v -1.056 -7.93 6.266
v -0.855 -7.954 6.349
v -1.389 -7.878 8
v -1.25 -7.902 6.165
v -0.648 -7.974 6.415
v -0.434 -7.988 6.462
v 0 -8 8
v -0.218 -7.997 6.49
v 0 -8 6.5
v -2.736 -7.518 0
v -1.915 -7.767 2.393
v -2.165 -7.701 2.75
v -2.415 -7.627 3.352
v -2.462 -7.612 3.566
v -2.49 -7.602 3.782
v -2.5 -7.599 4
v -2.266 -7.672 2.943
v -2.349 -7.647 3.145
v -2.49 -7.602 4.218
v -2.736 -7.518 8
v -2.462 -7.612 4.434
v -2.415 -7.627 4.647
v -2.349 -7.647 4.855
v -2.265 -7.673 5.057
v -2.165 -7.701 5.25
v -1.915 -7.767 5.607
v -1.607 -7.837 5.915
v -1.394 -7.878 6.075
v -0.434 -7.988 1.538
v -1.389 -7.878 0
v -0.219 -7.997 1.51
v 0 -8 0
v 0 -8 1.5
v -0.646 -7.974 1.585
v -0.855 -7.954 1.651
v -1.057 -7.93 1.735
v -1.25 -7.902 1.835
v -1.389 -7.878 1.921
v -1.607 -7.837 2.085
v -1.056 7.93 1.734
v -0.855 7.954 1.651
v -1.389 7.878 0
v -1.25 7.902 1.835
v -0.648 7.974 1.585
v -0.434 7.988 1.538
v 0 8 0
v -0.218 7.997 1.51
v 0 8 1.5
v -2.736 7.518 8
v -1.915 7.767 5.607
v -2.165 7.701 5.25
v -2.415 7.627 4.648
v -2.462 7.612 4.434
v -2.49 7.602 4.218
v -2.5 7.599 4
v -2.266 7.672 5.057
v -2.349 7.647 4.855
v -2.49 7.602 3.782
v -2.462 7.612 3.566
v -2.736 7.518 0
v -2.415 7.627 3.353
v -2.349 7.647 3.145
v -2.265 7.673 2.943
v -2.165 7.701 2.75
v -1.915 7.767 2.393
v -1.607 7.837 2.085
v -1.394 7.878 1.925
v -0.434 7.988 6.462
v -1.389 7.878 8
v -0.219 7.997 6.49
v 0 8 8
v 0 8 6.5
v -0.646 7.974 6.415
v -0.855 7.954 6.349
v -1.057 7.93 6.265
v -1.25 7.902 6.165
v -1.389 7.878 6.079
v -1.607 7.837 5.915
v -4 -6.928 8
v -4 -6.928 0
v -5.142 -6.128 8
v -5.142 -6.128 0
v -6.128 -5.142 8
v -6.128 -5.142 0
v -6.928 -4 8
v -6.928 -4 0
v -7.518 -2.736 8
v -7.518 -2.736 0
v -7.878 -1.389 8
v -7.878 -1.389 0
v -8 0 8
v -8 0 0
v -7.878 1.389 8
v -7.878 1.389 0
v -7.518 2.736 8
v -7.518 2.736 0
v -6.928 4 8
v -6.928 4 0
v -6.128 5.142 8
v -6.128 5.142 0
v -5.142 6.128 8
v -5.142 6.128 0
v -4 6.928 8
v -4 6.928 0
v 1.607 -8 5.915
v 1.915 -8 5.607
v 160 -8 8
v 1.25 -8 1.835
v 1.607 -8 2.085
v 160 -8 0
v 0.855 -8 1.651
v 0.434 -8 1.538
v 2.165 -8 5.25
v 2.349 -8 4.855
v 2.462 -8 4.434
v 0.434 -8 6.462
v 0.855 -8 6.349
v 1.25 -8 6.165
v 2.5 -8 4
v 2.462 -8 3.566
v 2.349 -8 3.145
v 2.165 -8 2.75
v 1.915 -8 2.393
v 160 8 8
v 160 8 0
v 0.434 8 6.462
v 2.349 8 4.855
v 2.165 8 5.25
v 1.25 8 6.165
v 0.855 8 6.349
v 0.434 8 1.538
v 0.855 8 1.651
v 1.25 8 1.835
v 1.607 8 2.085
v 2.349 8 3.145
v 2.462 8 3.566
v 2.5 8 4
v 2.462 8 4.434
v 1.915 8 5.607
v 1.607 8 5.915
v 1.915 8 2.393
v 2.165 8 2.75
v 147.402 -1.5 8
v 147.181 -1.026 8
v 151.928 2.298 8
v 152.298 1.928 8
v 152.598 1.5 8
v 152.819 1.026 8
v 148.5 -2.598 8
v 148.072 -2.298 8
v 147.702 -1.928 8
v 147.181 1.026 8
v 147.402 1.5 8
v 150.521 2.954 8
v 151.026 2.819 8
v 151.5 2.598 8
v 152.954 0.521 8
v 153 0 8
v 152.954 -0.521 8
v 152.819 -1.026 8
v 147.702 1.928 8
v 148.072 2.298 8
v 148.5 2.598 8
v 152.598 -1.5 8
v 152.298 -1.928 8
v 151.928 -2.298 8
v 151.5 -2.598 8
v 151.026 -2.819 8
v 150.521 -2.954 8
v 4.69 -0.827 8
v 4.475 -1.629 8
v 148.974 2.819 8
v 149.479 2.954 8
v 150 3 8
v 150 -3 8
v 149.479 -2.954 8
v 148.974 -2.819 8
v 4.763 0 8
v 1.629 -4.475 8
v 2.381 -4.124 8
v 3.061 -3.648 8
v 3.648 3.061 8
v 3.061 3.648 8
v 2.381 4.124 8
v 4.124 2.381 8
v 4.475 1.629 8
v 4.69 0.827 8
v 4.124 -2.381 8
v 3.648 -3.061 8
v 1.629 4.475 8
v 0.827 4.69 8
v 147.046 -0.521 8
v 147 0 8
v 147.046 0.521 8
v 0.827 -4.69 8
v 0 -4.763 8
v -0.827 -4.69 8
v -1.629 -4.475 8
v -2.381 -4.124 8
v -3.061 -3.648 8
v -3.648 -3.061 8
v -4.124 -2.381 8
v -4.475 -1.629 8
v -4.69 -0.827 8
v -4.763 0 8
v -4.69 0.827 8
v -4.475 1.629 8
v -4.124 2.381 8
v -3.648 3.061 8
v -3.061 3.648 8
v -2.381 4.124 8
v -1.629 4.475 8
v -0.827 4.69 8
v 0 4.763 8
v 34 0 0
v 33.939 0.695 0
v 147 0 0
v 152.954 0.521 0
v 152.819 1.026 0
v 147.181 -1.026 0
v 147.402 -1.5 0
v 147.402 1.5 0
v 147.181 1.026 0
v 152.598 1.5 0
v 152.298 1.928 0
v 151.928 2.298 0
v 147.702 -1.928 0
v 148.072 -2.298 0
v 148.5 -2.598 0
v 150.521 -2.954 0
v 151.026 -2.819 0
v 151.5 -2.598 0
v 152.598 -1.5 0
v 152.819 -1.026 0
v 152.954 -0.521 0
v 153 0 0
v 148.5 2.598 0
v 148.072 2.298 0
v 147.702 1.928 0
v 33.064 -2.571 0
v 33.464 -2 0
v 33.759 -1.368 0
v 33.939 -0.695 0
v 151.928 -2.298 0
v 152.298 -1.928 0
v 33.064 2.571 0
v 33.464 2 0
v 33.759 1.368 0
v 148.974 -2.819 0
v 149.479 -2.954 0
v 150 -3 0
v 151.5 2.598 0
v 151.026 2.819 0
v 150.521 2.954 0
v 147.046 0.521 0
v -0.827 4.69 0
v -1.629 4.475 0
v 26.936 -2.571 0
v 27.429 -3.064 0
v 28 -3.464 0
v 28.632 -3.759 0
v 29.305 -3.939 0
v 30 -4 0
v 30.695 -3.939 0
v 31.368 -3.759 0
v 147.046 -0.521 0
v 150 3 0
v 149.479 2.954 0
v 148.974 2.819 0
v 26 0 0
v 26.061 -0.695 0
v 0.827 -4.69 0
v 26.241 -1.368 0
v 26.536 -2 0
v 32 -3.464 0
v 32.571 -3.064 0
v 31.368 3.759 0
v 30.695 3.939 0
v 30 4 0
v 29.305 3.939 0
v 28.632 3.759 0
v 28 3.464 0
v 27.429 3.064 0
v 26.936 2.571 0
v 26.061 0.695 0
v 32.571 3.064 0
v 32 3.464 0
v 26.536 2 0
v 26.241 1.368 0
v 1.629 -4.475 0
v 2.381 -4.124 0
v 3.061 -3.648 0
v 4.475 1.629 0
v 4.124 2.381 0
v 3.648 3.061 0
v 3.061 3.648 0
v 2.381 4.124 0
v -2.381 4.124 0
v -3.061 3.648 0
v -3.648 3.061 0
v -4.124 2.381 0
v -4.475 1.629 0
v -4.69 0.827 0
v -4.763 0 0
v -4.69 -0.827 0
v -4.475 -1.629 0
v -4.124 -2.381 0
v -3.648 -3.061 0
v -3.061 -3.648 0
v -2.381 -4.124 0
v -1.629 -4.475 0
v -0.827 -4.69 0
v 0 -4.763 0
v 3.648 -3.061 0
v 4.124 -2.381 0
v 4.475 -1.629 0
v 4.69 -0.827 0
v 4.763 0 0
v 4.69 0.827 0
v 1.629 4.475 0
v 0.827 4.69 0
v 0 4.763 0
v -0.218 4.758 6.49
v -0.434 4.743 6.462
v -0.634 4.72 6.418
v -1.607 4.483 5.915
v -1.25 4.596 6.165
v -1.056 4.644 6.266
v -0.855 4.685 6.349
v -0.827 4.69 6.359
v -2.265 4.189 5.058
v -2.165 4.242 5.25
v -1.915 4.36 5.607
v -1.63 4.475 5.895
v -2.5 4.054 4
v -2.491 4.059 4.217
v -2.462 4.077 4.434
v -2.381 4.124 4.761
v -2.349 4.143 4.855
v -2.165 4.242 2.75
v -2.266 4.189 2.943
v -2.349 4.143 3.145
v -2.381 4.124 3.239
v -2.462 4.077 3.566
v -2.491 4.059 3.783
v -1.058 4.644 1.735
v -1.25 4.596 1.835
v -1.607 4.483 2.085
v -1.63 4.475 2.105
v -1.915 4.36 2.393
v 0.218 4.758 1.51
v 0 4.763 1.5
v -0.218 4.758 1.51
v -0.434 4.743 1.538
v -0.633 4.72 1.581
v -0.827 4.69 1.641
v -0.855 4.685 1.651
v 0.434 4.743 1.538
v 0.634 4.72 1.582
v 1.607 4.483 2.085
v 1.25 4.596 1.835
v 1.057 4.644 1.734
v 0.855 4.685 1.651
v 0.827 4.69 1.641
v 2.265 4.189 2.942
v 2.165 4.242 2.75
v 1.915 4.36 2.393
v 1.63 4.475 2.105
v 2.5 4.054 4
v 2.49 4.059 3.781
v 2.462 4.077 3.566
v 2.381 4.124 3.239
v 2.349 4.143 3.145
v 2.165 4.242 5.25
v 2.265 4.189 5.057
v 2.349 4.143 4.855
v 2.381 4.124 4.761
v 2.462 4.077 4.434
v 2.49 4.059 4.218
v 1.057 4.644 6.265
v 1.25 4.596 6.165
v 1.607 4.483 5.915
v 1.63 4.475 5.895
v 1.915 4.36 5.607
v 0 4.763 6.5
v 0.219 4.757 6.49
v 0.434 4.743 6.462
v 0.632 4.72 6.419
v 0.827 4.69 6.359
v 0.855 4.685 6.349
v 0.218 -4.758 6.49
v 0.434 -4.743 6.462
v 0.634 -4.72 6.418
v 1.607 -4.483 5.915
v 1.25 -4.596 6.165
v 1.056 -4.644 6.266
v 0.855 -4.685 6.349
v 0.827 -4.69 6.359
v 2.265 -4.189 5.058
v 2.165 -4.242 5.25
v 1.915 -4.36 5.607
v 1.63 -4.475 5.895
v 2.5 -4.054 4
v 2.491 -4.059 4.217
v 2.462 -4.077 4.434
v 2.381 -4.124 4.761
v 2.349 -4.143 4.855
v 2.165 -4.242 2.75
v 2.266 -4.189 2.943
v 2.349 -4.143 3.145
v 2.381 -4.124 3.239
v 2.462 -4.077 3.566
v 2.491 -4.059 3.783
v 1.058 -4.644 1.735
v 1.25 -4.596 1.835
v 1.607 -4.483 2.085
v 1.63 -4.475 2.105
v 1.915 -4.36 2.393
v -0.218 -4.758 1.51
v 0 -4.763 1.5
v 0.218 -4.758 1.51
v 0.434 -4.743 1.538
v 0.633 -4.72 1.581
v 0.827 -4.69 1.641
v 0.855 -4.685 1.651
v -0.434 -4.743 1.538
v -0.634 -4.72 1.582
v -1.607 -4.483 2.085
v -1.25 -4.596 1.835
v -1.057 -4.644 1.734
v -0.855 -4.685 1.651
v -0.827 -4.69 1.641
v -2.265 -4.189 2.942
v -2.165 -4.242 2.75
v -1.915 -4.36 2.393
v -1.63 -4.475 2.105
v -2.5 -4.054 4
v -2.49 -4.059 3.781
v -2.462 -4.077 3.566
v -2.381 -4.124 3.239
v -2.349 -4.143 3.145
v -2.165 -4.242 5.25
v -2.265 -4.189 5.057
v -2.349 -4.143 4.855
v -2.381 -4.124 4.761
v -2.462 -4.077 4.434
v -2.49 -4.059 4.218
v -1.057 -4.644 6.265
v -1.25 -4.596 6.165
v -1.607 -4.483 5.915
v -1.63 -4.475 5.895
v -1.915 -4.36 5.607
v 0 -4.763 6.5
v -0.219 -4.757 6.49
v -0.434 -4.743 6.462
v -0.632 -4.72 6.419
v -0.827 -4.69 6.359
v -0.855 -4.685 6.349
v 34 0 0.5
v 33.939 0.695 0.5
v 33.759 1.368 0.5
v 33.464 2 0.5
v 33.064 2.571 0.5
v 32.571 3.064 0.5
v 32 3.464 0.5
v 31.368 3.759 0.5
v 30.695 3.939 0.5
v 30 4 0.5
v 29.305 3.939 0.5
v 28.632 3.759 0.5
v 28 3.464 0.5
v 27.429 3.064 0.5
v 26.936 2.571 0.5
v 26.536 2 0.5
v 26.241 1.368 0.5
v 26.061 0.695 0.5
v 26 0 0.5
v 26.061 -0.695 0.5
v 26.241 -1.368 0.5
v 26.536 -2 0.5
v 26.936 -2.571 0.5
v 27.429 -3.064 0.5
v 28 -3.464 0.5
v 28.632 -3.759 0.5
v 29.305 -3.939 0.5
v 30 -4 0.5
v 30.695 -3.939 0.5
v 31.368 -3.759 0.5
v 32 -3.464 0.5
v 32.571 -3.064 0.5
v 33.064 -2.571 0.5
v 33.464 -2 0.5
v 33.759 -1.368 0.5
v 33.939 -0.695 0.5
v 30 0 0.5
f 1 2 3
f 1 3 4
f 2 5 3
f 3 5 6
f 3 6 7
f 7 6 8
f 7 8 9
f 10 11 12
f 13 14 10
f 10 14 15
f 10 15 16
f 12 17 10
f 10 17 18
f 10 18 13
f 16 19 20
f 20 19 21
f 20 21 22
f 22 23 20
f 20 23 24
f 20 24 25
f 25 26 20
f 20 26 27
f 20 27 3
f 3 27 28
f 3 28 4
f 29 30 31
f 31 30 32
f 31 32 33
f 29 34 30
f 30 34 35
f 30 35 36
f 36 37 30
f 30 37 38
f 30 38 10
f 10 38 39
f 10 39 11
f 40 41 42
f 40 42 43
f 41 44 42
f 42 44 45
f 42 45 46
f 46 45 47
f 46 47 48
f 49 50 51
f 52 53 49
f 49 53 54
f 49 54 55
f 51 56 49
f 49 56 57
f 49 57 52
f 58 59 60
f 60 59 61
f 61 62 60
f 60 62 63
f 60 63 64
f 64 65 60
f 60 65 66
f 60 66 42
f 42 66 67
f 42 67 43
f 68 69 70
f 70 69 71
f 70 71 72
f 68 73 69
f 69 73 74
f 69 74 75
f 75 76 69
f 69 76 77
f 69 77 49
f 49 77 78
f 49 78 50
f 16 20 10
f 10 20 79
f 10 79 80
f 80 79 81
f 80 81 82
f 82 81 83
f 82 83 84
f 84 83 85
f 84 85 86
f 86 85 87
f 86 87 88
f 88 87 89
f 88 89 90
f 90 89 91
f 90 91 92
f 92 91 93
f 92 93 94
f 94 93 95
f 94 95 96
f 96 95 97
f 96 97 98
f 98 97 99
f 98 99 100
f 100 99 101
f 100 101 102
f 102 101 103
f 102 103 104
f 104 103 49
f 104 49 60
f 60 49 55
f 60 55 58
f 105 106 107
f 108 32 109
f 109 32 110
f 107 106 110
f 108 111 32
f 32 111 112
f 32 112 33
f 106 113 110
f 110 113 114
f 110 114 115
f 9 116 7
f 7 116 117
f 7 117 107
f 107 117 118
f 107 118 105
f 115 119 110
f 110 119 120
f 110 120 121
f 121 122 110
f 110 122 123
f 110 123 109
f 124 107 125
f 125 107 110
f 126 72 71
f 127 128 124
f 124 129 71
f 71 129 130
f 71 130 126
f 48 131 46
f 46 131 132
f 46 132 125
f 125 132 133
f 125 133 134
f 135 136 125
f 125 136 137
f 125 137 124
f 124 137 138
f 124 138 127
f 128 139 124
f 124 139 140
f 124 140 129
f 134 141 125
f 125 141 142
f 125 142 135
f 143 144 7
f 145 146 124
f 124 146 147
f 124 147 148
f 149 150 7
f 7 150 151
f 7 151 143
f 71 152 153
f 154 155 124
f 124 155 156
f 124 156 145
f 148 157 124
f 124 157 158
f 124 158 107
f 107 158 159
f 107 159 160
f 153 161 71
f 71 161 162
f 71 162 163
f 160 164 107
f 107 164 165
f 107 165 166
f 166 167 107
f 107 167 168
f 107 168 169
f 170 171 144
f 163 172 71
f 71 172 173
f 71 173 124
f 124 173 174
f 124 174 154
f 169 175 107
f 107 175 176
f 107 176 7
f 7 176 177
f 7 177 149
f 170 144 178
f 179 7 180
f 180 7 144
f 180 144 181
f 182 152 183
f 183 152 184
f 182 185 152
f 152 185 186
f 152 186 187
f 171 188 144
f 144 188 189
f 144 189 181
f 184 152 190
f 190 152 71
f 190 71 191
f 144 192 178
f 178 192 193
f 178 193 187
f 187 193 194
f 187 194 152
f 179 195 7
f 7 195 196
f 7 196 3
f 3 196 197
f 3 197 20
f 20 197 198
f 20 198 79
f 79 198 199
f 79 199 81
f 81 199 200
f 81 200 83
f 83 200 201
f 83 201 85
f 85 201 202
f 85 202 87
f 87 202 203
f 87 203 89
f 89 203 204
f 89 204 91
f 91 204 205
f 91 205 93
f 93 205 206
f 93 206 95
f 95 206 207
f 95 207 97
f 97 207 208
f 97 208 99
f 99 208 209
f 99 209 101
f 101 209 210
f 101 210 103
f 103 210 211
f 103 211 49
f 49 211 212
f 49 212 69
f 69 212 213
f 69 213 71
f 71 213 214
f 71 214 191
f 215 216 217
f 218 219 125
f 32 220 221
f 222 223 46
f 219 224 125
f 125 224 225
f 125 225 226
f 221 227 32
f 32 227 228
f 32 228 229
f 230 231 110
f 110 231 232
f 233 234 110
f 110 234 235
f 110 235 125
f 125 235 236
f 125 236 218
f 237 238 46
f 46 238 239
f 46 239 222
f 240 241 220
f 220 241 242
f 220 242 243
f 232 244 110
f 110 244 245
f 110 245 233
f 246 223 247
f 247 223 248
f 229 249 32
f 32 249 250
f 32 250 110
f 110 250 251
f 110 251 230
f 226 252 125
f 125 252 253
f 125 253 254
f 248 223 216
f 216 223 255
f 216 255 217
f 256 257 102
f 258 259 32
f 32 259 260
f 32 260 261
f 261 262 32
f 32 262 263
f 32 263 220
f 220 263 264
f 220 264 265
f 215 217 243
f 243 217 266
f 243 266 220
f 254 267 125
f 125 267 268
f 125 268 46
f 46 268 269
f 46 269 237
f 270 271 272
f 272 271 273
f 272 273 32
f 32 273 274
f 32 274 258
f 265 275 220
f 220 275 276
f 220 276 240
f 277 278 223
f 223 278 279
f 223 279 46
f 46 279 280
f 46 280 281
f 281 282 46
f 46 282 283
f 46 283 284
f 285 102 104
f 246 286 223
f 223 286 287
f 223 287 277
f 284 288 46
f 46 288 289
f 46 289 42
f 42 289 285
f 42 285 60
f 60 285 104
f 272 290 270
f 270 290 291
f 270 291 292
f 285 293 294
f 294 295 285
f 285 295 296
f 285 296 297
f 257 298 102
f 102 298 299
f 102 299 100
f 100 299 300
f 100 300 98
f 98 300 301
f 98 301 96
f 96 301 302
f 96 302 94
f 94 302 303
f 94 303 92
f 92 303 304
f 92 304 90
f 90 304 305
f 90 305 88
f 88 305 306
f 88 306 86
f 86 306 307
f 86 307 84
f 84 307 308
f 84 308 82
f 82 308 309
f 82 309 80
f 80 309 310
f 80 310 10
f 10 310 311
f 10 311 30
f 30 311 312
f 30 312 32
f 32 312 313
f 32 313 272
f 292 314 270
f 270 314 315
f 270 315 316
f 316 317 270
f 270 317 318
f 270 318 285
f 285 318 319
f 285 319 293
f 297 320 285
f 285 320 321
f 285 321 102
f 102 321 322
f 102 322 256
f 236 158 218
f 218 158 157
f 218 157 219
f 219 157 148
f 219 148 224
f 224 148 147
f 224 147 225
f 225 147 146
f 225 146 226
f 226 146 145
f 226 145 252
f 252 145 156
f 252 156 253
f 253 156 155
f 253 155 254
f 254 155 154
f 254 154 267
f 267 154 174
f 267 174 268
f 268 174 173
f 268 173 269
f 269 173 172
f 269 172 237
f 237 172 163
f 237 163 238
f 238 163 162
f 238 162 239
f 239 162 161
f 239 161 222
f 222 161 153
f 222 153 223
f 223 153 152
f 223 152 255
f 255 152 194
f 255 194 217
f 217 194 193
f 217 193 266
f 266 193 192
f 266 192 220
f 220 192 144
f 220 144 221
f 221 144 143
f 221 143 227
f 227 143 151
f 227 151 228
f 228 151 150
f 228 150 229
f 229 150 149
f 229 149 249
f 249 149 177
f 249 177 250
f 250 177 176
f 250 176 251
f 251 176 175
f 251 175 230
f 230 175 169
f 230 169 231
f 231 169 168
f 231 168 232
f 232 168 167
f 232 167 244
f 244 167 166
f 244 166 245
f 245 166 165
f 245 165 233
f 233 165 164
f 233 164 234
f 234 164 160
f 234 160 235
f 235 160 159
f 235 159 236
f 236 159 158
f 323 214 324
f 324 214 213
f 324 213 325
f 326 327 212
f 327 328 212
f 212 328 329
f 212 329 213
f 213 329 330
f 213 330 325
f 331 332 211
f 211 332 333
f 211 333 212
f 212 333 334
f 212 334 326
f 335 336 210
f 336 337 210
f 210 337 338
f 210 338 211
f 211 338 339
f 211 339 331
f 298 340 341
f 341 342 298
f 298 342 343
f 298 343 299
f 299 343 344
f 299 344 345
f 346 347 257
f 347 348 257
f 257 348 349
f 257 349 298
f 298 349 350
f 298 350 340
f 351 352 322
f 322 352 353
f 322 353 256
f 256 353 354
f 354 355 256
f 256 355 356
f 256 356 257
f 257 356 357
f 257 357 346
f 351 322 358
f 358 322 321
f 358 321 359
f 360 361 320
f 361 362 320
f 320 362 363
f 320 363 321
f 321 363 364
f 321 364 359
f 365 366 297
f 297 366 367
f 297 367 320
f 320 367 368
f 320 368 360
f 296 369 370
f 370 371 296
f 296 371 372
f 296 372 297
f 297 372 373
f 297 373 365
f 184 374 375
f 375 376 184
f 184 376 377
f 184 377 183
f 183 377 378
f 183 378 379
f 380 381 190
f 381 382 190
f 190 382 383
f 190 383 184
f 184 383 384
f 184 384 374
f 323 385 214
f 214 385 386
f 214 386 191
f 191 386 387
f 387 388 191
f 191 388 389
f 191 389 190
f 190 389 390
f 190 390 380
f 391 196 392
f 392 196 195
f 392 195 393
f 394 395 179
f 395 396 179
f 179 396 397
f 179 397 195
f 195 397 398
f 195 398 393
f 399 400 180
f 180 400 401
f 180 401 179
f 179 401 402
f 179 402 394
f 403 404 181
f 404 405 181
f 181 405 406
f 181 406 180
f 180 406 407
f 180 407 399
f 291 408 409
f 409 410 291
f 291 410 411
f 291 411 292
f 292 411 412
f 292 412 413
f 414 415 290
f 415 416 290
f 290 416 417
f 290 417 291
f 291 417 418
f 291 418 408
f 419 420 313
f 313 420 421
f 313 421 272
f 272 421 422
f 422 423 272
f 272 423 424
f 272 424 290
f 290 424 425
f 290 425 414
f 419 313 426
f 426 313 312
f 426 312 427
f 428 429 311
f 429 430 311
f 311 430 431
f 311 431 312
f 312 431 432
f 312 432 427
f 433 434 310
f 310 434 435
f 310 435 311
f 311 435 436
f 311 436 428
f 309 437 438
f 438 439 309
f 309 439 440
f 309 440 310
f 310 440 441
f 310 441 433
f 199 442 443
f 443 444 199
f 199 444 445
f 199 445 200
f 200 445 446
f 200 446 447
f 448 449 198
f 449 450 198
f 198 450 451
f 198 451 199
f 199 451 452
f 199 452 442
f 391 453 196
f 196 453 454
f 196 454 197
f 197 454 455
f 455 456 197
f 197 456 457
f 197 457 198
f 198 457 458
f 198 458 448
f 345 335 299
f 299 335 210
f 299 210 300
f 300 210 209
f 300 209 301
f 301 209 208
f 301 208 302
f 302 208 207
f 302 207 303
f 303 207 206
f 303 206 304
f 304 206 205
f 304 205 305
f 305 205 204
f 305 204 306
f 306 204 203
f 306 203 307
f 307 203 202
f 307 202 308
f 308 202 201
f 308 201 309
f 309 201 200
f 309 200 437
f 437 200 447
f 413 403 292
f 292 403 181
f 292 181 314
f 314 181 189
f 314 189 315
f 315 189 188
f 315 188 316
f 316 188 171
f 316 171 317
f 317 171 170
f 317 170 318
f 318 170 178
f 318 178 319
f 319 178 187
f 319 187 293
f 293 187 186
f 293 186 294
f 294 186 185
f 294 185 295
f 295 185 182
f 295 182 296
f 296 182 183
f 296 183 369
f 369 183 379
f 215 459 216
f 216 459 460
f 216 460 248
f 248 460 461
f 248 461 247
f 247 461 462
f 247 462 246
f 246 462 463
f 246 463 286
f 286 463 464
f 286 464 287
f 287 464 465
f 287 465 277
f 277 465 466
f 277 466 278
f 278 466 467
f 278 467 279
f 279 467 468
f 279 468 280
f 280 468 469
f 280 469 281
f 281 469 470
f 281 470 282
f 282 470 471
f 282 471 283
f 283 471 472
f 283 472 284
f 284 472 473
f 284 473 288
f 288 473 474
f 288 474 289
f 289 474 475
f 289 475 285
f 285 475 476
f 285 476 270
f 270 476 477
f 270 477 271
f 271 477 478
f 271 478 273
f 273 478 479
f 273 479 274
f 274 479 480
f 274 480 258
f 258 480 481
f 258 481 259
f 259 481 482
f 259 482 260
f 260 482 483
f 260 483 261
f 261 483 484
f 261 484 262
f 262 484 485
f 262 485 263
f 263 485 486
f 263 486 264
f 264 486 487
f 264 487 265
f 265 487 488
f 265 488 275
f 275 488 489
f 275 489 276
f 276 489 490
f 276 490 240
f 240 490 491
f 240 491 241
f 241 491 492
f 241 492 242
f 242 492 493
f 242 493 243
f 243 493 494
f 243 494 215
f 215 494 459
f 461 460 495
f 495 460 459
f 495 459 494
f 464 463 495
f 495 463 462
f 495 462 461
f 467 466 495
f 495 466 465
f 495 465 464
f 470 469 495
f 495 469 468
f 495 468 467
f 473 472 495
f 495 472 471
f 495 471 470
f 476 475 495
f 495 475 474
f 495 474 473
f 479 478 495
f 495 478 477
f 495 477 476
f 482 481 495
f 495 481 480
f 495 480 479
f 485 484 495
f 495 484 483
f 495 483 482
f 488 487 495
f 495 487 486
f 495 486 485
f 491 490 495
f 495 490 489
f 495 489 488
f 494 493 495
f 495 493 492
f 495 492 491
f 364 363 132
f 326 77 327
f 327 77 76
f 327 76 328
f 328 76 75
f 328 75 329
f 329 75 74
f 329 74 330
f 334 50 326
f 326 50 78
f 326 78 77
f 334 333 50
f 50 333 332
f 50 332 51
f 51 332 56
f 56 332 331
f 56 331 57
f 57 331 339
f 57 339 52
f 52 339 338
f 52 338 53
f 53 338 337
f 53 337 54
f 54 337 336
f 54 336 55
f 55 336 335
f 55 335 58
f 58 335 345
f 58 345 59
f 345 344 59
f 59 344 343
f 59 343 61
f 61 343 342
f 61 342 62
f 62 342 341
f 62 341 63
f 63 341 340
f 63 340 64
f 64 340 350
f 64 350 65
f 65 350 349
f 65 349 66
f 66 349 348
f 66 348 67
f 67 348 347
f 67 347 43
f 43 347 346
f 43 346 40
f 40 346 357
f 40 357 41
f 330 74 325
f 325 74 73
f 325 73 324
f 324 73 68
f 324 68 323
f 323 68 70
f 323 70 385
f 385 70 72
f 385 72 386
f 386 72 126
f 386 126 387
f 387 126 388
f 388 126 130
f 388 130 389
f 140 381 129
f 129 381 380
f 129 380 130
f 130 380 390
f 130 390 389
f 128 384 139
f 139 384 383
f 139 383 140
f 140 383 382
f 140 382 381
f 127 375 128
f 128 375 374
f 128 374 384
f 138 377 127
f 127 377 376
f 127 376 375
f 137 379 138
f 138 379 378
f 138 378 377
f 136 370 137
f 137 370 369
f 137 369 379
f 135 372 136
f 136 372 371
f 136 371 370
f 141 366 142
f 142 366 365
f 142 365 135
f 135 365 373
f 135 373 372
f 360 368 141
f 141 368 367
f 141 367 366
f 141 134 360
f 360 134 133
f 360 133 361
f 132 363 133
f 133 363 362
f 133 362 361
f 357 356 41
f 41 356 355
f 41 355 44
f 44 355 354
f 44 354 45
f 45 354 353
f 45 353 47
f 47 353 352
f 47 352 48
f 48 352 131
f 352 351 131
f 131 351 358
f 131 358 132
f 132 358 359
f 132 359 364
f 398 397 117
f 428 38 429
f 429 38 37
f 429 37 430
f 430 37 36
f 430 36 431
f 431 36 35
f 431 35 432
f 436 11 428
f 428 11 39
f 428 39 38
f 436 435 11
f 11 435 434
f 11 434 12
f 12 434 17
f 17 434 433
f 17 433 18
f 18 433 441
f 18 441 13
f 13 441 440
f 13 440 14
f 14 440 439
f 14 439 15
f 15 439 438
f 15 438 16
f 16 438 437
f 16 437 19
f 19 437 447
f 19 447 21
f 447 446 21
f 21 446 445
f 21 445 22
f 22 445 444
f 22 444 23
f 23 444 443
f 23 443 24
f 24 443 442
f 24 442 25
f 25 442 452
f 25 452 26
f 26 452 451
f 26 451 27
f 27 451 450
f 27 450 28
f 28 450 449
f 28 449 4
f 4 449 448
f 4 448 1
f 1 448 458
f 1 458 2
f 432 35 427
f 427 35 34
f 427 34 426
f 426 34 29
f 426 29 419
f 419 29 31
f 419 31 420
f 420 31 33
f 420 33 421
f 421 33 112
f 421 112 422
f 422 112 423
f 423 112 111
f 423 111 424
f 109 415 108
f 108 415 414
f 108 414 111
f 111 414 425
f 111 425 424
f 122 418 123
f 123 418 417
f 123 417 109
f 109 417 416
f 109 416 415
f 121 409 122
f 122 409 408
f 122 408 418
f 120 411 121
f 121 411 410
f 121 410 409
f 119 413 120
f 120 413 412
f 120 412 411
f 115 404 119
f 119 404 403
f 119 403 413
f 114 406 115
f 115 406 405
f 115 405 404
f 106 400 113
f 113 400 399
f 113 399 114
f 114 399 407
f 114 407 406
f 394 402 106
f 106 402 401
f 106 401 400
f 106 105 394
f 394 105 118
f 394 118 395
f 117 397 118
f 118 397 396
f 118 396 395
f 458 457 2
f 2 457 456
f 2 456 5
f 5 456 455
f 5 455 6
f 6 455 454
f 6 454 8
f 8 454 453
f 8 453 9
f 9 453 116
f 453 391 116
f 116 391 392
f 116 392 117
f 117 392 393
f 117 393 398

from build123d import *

# Parameters (mm, degrees)
BOSS_EXTRUDE1_DEPTH = 8
SKETCH2_R           = 4.7625
SKETCH2_R_2         = 3
CUT_EXTRUDE1_DEPTH  = 20
SKETCH3_R           = 4
CUT_EXTRUDE2_DEPTH  = 0.5
SKETCH4_R           = 2.5
CUT_EXTRUDE3_DEPTH  = 20


with BuildPart() as part:
    # Sketch1 → Boss-Extrude1 (new body)
    with BuildSketch(Plane.XY):
        with BuildLine():
            Line((0, -8), (160, -8))
            Line((160, -8), (160, 8))
            Line((160, 8), (0, 8))
            ThreePointArc((0, 8), (-8, 0), (0, -8))
        make_face()
    extrude(amount=BOSS_EXTRUDE1_DEPTH)

    # Sketch2 → Cut-Extrude1 (cut, symmetric)
    with BuildSketch(Plane.XY):
        Circle(SKETCH2_R)
        with Locations((150, 0)):
            Circle(SKETCH2_R_2)
    extrude(amount=CUT_EXTRUDE1_DEPTH, both=True, mode=Mode.SUBTRACT)

    # Sketch3 → Cut-Extrude2 (cut, symmetric)
    with BuildSketch(Plane.XY):
        with Locations((30, 0)):
            Circle(SKETCH3_R)
    extrude(amount=CUT_EXTRUDE2_DEPTH, both=True, mode=Mode.SUBTRACT)

    # Sketch4 → Cut-Extrude3 (cut, symmetric)
    with BuildSketch(Plane(origin=(0, 0, 0), x_dir=(1, 0, 0), z_dir=(0, 1, 0))):
        with Locations((0, -4)):
            Circle(SKETCH4_R)
    extrude(amount=CUT_EXTRUDE3_DEPTH, both=True, mode=Mode.SUBTRACT)


solid = part.part
